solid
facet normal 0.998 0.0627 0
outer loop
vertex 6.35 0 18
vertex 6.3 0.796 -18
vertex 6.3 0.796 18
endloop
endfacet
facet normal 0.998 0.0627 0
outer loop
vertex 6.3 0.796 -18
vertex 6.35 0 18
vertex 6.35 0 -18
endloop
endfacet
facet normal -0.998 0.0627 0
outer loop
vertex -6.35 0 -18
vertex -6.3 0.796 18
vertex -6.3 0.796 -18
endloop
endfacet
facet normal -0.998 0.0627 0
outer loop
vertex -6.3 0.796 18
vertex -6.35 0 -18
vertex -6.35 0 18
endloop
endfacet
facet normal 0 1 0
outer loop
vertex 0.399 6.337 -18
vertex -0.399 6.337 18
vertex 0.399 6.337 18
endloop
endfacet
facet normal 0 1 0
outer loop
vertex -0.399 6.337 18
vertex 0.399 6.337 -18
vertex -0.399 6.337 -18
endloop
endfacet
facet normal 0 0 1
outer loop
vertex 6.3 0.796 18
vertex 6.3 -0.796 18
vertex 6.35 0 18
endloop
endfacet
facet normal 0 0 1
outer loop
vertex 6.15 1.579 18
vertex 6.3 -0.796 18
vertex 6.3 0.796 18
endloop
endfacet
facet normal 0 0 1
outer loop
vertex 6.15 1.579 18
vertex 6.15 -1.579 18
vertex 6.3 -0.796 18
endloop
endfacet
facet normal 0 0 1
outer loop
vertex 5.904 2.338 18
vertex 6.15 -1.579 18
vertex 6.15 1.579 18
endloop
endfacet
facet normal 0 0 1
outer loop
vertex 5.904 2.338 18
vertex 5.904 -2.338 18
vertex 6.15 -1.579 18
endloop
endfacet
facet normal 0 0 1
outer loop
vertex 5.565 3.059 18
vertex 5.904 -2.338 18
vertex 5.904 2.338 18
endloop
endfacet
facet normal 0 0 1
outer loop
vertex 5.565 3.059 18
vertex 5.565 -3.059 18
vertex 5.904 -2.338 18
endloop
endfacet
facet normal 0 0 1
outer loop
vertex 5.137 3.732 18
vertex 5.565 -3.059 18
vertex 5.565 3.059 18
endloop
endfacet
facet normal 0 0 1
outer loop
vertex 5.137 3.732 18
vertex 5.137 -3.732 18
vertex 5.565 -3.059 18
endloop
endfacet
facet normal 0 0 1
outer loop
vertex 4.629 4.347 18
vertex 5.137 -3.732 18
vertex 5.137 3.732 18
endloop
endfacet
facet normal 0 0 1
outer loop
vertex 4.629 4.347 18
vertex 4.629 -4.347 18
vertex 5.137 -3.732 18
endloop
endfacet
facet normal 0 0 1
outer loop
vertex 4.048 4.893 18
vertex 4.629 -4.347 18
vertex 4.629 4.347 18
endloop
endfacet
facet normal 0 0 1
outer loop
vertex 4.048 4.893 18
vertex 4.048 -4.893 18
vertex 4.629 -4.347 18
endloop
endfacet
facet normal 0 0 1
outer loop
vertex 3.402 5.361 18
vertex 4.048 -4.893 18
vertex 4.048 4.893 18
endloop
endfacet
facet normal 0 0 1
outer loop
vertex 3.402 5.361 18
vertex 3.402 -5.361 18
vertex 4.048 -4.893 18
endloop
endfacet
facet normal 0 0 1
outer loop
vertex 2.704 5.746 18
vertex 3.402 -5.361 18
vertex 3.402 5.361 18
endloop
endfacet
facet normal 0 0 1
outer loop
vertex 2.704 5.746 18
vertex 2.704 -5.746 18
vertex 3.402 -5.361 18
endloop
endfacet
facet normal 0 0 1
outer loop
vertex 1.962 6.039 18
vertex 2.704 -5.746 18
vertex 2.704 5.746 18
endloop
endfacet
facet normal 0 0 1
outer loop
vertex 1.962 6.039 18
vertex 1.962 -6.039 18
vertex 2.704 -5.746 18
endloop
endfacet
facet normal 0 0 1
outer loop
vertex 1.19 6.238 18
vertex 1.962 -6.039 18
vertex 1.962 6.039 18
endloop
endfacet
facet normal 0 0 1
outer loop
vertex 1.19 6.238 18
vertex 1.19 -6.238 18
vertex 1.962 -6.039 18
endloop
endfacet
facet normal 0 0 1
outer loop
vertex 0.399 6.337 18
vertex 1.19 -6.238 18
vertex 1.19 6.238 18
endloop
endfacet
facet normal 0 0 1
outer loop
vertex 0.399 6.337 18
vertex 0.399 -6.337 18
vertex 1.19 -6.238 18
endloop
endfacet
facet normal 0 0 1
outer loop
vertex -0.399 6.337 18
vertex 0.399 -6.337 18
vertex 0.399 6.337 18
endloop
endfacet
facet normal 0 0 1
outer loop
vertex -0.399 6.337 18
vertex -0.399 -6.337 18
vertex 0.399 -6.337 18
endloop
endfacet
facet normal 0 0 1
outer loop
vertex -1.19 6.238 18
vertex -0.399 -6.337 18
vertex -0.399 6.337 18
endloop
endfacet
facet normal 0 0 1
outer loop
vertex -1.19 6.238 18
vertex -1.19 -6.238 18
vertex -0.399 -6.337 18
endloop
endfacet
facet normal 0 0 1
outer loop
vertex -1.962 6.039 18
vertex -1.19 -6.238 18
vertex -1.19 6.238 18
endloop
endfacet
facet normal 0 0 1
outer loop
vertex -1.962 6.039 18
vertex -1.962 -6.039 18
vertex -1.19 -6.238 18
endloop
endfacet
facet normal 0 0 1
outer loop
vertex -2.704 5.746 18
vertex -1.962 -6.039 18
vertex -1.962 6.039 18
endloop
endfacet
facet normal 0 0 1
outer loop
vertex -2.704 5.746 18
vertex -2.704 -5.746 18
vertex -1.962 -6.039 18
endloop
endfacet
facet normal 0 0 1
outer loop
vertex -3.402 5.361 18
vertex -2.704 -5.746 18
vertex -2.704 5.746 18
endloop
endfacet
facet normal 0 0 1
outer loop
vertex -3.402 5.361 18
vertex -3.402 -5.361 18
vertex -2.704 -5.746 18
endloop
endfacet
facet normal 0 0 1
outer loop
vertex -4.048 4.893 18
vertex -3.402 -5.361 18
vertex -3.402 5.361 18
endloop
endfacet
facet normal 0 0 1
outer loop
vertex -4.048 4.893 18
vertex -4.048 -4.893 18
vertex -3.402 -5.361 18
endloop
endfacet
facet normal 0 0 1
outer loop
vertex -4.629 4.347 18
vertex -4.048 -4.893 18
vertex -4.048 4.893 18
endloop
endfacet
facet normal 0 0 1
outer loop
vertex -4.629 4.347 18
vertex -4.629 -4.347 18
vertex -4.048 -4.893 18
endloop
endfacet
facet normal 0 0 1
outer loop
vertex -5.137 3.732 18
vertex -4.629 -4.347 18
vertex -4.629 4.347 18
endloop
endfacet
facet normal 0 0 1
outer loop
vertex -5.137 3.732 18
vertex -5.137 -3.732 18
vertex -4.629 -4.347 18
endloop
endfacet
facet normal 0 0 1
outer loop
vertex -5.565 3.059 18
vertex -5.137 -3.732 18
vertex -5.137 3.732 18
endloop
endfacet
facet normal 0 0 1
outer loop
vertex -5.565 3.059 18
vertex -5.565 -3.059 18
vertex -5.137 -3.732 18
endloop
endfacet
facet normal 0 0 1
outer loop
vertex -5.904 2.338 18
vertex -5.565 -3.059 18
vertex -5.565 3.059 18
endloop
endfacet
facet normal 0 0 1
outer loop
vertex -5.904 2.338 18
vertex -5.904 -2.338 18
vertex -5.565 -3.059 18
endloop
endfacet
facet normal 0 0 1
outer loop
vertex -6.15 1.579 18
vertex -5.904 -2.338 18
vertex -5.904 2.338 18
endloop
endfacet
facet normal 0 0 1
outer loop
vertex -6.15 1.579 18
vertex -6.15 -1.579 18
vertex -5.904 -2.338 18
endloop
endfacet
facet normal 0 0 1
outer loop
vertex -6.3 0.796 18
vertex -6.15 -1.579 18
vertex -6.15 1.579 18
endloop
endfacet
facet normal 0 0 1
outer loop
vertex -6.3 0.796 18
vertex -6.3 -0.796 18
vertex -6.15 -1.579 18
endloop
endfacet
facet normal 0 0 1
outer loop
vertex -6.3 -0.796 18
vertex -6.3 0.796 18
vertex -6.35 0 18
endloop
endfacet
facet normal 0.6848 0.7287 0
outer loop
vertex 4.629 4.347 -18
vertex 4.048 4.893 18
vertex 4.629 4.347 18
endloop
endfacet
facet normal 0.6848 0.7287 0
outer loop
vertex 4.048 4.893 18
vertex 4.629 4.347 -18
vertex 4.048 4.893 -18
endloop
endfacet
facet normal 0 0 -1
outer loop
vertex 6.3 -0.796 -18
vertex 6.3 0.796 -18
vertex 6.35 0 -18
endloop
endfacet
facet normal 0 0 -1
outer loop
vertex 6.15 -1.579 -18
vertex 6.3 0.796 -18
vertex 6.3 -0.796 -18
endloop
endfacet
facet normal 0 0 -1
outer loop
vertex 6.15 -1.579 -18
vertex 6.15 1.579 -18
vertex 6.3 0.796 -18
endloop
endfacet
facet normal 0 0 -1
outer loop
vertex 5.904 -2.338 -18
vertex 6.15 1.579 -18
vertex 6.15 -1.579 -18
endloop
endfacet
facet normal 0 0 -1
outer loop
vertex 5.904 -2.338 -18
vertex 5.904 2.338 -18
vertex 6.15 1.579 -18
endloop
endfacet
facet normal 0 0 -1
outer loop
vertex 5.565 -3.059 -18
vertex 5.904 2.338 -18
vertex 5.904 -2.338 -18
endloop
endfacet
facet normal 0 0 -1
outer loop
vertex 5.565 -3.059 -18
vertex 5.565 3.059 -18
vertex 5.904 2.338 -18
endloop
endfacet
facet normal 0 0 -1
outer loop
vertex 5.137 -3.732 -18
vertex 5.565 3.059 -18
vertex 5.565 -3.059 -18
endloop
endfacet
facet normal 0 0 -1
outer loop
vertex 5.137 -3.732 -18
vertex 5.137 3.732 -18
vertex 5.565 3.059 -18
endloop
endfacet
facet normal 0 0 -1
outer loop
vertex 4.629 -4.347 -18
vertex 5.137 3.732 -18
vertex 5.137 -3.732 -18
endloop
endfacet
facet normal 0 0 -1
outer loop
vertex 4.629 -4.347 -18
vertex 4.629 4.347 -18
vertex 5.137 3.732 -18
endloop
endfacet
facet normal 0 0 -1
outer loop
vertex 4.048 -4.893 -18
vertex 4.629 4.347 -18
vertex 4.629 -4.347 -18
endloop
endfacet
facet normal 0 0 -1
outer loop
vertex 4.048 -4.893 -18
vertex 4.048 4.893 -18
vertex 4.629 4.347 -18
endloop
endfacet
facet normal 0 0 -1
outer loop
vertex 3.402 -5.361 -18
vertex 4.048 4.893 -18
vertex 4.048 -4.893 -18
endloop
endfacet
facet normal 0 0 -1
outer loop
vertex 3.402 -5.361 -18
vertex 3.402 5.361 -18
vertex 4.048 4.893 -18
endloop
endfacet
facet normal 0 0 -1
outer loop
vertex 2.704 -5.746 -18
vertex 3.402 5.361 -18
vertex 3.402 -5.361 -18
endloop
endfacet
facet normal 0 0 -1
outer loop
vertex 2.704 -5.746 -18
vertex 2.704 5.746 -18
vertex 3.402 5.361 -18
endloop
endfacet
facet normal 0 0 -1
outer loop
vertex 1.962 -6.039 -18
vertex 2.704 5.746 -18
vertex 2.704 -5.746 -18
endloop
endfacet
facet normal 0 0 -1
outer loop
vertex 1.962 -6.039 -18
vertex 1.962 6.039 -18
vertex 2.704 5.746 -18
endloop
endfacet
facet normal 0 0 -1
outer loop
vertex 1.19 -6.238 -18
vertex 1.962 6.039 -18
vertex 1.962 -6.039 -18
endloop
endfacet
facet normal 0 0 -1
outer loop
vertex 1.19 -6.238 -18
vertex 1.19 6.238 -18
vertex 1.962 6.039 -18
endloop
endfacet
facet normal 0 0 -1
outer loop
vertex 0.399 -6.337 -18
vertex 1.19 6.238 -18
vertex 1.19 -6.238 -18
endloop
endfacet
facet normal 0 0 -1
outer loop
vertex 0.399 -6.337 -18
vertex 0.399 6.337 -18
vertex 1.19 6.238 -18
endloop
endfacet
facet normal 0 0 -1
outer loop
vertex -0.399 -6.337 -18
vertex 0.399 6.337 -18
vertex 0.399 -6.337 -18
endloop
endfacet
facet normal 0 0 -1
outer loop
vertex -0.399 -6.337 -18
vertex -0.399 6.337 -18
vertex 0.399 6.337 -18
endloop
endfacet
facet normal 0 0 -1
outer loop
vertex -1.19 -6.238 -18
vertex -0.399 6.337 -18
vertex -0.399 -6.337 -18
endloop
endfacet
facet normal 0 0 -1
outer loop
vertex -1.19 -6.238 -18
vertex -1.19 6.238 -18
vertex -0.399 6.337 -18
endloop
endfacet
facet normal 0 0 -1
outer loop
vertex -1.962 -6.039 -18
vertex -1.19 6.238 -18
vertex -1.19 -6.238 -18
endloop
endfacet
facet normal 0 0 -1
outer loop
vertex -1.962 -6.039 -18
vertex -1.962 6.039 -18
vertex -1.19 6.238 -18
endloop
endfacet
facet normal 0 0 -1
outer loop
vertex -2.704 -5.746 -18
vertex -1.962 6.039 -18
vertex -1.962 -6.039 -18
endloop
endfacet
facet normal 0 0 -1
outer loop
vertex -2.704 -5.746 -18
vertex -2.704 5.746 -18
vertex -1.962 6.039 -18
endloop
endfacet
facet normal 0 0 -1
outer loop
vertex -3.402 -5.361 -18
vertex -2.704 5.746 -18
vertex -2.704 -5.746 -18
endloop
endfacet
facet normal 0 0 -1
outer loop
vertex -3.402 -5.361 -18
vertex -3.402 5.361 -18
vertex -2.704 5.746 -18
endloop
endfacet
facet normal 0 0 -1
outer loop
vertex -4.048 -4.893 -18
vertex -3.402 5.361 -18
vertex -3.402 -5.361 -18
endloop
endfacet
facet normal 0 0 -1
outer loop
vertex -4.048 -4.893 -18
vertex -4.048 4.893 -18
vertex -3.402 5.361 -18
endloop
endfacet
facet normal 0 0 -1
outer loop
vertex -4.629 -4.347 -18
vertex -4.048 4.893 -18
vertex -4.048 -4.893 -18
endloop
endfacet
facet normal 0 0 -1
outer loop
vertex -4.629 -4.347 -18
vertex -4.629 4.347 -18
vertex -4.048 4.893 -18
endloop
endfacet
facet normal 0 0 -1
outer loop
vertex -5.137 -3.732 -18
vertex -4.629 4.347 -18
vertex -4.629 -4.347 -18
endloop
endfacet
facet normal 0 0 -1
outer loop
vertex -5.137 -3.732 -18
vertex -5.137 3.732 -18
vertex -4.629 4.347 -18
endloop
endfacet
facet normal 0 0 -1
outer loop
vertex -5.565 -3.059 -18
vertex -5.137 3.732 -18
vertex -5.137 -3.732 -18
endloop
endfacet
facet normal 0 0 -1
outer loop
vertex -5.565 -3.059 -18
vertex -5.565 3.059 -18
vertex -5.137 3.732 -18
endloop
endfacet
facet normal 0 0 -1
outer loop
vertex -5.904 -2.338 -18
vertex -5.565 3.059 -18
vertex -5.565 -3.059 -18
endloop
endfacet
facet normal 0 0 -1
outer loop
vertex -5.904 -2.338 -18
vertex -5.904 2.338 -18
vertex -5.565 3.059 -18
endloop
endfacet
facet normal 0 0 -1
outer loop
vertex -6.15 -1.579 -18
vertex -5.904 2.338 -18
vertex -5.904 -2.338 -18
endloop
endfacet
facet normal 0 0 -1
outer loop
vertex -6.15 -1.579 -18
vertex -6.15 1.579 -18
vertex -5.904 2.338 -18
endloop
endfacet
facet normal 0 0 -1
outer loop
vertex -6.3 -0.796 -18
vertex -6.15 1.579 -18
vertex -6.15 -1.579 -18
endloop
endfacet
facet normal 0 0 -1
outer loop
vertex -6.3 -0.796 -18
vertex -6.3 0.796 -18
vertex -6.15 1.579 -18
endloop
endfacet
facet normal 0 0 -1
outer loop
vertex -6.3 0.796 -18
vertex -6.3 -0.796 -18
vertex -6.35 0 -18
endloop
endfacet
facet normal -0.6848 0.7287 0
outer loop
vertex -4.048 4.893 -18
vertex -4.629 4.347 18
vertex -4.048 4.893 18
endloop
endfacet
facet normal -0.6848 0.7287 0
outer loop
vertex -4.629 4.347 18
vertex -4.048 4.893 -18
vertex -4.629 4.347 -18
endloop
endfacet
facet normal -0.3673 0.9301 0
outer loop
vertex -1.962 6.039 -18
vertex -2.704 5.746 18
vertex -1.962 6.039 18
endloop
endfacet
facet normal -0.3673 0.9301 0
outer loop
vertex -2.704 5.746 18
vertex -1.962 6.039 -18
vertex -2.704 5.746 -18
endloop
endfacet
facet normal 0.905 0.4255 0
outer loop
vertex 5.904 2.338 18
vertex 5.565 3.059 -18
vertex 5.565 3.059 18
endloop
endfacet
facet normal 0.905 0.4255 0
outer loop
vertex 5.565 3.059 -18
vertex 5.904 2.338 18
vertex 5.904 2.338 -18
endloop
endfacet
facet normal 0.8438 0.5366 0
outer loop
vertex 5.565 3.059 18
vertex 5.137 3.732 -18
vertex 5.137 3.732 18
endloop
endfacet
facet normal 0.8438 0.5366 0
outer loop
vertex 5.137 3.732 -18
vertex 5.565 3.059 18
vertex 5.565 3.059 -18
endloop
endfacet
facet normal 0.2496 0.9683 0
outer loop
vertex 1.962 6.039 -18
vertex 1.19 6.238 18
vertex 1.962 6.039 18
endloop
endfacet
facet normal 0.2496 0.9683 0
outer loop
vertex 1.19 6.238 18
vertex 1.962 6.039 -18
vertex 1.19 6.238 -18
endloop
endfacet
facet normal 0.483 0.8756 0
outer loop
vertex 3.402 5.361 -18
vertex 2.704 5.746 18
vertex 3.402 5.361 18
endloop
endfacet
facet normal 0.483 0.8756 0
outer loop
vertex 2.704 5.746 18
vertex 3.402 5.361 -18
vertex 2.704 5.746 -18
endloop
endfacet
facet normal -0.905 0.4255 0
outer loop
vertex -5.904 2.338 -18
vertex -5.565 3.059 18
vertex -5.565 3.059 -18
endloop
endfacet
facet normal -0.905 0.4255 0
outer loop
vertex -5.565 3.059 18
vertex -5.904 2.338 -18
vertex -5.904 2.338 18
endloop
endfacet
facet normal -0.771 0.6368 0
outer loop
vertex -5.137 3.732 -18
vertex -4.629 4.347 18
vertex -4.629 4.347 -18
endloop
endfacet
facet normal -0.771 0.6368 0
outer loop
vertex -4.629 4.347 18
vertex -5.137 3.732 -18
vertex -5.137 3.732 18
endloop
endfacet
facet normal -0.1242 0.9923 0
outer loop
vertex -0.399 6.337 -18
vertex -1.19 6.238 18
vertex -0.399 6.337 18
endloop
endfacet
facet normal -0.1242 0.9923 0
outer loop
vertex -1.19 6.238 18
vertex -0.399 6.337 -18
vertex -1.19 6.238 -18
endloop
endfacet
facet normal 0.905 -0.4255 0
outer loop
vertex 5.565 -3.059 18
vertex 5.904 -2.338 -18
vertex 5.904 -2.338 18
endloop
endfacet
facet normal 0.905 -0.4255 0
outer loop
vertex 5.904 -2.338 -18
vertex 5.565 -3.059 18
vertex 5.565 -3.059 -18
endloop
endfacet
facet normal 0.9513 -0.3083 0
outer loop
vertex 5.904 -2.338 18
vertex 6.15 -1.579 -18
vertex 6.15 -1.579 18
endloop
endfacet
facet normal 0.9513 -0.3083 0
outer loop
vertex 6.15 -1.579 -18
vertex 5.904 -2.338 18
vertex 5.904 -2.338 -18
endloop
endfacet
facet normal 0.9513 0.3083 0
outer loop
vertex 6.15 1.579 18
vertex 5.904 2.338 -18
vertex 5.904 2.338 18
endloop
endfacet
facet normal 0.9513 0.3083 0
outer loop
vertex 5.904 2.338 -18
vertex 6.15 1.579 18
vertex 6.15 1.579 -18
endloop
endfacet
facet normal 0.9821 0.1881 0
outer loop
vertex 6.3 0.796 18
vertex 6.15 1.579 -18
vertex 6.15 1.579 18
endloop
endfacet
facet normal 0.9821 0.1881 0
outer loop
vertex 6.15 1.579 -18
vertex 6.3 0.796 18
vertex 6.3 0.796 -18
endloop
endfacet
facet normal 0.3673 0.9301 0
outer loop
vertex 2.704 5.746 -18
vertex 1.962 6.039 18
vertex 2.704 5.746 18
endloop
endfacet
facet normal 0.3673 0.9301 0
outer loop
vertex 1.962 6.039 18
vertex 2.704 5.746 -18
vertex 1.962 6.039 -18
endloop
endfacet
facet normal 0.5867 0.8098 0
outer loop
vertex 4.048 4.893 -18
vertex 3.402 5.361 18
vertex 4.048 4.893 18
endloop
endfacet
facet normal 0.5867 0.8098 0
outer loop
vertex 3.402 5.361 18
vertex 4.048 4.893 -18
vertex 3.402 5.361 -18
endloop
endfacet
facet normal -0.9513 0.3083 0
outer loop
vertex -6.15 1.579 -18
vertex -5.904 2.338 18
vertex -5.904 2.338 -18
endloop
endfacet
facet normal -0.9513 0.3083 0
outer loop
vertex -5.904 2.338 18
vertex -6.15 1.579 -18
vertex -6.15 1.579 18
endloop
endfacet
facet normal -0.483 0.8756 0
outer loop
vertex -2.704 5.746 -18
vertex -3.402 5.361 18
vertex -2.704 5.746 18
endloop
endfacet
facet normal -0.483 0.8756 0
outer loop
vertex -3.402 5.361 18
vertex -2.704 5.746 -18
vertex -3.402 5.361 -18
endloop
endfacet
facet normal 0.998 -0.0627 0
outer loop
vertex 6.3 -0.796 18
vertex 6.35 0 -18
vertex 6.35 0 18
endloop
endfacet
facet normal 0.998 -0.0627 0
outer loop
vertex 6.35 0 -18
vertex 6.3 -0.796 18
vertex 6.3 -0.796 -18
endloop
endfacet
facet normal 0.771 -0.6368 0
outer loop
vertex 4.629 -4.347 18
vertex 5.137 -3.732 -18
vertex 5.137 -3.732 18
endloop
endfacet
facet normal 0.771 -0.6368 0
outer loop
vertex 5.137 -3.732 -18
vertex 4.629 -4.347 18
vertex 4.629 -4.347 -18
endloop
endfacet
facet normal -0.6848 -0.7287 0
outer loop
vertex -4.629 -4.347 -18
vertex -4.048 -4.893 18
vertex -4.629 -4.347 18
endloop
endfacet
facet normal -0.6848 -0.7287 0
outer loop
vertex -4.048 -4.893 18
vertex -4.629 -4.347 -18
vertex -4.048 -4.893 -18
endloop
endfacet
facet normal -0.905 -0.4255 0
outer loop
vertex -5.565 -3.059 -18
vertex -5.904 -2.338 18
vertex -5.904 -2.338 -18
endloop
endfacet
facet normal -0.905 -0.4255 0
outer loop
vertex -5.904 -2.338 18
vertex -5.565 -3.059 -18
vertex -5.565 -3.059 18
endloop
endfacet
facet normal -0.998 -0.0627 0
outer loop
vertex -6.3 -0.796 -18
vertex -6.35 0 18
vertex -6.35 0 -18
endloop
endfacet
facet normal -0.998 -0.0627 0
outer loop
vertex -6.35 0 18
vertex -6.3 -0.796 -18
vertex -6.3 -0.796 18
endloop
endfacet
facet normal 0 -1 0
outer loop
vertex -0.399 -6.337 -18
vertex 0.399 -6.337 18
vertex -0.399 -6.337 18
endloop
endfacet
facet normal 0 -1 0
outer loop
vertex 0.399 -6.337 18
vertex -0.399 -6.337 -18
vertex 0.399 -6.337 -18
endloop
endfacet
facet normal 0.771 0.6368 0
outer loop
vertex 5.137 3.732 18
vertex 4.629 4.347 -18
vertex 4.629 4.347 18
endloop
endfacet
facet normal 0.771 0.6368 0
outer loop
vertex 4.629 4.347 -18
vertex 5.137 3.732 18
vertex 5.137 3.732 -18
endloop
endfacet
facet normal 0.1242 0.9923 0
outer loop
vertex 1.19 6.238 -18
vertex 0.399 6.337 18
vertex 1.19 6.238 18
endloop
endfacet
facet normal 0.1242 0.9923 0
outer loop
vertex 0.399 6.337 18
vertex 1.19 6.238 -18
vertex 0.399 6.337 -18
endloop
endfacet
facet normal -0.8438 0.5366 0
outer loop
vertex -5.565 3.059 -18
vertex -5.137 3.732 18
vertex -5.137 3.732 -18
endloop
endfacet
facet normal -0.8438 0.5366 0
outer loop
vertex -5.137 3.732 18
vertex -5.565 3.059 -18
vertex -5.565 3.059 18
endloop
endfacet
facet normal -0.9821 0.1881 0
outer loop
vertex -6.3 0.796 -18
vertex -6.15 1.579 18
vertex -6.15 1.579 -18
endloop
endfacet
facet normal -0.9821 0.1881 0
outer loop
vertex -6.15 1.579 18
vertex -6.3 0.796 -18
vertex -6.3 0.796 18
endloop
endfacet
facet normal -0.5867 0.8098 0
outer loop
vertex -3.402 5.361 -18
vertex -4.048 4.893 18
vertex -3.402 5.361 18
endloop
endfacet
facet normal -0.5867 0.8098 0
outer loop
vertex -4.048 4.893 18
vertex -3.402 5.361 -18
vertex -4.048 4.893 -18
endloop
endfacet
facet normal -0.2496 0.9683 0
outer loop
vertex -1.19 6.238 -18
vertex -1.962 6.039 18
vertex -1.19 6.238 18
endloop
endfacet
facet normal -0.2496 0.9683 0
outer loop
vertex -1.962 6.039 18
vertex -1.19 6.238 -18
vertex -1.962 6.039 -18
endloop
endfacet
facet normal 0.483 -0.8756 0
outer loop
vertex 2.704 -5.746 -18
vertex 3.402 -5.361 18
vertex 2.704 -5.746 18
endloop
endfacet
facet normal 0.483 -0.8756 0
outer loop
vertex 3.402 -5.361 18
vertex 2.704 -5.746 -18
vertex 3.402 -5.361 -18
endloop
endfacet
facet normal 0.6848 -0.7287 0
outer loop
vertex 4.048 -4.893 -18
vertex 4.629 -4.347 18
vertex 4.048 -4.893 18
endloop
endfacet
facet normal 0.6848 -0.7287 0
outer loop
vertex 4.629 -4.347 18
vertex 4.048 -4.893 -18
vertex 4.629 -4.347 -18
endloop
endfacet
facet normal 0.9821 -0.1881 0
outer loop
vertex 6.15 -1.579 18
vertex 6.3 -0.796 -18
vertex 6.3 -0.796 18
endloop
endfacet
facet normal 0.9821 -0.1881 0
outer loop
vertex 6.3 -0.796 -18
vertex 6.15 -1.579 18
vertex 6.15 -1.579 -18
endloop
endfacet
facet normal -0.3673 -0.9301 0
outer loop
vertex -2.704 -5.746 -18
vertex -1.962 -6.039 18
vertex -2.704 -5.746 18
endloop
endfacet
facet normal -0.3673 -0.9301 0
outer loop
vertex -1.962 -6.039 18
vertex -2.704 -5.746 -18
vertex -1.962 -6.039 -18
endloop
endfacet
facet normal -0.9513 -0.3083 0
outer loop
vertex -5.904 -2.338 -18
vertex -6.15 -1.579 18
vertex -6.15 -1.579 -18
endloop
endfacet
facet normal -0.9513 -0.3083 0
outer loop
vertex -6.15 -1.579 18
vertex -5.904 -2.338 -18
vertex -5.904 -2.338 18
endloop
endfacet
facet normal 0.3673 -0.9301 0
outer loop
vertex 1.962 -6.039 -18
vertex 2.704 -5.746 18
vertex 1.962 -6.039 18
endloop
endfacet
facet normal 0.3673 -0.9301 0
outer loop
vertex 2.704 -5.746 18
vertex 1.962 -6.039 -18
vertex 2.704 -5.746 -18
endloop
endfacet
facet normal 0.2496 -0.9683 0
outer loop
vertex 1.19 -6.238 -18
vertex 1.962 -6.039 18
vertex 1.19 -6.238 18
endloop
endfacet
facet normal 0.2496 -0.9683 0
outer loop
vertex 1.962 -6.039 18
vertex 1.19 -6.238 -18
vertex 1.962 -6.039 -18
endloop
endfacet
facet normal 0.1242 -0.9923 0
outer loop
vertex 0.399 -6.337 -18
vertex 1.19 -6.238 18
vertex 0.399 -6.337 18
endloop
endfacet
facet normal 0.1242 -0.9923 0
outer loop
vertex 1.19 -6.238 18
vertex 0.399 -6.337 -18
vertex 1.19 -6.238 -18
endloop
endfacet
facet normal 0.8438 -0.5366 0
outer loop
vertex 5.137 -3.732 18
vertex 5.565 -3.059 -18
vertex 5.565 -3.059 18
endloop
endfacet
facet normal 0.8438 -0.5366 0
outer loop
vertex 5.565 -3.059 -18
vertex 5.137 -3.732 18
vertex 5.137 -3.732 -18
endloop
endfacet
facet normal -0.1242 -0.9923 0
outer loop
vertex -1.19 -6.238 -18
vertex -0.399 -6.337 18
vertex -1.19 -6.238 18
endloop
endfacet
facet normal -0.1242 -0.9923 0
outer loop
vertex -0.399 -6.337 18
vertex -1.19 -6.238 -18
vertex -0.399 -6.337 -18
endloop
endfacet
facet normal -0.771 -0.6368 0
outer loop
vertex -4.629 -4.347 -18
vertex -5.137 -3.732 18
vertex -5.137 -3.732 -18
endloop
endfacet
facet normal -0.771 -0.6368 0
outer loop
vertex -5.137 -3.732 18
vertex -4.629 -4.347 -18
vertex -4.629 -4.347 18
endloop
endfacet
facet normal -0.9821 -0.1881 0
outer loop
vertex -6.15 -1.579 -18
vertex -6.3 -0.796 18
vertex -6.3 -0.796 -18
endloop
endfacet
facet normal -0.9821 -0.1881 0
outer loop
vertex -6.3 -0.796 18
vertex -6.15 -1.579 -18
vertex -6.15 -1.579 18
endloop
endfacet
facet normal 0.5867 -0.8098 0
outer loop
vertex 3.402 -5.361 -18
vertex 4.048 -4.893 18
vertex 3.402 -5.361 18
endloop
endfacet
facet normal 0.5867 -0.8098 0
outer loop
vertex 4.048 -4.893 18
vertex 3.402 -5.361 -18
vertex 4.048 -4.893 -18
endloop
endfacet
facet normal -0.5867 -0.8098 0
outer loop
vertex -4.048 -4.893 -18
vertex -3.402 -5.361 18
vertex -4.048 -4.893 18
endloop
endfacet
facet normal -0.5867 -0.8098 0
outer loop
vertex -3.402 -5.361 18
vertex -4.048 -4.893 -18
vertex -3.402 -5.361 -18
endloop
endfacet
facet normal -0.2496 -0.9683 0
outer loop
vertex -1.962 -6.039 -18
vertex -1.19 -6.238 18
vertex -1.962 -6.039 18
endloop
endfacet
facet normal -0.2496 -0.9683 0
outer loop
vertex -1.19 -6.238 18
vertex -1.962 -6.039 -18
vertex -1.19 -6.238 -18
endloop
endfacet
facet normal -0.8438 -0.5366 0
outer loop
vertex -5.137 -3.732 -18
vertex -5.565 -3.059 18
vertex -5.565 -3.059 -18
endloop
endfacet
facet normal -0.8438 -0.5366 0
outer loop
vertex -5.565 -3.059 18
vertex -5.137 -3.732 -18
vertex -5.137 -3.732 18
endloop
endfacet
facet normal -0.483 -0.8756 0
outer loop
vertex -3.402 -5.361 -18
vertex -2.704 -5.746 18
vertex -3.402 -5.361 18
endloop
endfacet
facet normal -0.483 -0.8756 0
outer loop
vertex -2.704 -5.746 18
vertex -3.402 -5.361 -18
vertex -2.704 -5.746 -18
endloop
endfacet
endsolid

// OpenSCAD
$fn = 50;


difference() {
	union() {
		translate(v = [0, 0, -18.0000000000]) {
			cylinder(h = 36, r = 6.3500000000);
		}
	}
	union() {
		translate(v = [0, 0, -100.0000000000]) {
			cylinder(h = 200, r = 0);
		}
	}
}
